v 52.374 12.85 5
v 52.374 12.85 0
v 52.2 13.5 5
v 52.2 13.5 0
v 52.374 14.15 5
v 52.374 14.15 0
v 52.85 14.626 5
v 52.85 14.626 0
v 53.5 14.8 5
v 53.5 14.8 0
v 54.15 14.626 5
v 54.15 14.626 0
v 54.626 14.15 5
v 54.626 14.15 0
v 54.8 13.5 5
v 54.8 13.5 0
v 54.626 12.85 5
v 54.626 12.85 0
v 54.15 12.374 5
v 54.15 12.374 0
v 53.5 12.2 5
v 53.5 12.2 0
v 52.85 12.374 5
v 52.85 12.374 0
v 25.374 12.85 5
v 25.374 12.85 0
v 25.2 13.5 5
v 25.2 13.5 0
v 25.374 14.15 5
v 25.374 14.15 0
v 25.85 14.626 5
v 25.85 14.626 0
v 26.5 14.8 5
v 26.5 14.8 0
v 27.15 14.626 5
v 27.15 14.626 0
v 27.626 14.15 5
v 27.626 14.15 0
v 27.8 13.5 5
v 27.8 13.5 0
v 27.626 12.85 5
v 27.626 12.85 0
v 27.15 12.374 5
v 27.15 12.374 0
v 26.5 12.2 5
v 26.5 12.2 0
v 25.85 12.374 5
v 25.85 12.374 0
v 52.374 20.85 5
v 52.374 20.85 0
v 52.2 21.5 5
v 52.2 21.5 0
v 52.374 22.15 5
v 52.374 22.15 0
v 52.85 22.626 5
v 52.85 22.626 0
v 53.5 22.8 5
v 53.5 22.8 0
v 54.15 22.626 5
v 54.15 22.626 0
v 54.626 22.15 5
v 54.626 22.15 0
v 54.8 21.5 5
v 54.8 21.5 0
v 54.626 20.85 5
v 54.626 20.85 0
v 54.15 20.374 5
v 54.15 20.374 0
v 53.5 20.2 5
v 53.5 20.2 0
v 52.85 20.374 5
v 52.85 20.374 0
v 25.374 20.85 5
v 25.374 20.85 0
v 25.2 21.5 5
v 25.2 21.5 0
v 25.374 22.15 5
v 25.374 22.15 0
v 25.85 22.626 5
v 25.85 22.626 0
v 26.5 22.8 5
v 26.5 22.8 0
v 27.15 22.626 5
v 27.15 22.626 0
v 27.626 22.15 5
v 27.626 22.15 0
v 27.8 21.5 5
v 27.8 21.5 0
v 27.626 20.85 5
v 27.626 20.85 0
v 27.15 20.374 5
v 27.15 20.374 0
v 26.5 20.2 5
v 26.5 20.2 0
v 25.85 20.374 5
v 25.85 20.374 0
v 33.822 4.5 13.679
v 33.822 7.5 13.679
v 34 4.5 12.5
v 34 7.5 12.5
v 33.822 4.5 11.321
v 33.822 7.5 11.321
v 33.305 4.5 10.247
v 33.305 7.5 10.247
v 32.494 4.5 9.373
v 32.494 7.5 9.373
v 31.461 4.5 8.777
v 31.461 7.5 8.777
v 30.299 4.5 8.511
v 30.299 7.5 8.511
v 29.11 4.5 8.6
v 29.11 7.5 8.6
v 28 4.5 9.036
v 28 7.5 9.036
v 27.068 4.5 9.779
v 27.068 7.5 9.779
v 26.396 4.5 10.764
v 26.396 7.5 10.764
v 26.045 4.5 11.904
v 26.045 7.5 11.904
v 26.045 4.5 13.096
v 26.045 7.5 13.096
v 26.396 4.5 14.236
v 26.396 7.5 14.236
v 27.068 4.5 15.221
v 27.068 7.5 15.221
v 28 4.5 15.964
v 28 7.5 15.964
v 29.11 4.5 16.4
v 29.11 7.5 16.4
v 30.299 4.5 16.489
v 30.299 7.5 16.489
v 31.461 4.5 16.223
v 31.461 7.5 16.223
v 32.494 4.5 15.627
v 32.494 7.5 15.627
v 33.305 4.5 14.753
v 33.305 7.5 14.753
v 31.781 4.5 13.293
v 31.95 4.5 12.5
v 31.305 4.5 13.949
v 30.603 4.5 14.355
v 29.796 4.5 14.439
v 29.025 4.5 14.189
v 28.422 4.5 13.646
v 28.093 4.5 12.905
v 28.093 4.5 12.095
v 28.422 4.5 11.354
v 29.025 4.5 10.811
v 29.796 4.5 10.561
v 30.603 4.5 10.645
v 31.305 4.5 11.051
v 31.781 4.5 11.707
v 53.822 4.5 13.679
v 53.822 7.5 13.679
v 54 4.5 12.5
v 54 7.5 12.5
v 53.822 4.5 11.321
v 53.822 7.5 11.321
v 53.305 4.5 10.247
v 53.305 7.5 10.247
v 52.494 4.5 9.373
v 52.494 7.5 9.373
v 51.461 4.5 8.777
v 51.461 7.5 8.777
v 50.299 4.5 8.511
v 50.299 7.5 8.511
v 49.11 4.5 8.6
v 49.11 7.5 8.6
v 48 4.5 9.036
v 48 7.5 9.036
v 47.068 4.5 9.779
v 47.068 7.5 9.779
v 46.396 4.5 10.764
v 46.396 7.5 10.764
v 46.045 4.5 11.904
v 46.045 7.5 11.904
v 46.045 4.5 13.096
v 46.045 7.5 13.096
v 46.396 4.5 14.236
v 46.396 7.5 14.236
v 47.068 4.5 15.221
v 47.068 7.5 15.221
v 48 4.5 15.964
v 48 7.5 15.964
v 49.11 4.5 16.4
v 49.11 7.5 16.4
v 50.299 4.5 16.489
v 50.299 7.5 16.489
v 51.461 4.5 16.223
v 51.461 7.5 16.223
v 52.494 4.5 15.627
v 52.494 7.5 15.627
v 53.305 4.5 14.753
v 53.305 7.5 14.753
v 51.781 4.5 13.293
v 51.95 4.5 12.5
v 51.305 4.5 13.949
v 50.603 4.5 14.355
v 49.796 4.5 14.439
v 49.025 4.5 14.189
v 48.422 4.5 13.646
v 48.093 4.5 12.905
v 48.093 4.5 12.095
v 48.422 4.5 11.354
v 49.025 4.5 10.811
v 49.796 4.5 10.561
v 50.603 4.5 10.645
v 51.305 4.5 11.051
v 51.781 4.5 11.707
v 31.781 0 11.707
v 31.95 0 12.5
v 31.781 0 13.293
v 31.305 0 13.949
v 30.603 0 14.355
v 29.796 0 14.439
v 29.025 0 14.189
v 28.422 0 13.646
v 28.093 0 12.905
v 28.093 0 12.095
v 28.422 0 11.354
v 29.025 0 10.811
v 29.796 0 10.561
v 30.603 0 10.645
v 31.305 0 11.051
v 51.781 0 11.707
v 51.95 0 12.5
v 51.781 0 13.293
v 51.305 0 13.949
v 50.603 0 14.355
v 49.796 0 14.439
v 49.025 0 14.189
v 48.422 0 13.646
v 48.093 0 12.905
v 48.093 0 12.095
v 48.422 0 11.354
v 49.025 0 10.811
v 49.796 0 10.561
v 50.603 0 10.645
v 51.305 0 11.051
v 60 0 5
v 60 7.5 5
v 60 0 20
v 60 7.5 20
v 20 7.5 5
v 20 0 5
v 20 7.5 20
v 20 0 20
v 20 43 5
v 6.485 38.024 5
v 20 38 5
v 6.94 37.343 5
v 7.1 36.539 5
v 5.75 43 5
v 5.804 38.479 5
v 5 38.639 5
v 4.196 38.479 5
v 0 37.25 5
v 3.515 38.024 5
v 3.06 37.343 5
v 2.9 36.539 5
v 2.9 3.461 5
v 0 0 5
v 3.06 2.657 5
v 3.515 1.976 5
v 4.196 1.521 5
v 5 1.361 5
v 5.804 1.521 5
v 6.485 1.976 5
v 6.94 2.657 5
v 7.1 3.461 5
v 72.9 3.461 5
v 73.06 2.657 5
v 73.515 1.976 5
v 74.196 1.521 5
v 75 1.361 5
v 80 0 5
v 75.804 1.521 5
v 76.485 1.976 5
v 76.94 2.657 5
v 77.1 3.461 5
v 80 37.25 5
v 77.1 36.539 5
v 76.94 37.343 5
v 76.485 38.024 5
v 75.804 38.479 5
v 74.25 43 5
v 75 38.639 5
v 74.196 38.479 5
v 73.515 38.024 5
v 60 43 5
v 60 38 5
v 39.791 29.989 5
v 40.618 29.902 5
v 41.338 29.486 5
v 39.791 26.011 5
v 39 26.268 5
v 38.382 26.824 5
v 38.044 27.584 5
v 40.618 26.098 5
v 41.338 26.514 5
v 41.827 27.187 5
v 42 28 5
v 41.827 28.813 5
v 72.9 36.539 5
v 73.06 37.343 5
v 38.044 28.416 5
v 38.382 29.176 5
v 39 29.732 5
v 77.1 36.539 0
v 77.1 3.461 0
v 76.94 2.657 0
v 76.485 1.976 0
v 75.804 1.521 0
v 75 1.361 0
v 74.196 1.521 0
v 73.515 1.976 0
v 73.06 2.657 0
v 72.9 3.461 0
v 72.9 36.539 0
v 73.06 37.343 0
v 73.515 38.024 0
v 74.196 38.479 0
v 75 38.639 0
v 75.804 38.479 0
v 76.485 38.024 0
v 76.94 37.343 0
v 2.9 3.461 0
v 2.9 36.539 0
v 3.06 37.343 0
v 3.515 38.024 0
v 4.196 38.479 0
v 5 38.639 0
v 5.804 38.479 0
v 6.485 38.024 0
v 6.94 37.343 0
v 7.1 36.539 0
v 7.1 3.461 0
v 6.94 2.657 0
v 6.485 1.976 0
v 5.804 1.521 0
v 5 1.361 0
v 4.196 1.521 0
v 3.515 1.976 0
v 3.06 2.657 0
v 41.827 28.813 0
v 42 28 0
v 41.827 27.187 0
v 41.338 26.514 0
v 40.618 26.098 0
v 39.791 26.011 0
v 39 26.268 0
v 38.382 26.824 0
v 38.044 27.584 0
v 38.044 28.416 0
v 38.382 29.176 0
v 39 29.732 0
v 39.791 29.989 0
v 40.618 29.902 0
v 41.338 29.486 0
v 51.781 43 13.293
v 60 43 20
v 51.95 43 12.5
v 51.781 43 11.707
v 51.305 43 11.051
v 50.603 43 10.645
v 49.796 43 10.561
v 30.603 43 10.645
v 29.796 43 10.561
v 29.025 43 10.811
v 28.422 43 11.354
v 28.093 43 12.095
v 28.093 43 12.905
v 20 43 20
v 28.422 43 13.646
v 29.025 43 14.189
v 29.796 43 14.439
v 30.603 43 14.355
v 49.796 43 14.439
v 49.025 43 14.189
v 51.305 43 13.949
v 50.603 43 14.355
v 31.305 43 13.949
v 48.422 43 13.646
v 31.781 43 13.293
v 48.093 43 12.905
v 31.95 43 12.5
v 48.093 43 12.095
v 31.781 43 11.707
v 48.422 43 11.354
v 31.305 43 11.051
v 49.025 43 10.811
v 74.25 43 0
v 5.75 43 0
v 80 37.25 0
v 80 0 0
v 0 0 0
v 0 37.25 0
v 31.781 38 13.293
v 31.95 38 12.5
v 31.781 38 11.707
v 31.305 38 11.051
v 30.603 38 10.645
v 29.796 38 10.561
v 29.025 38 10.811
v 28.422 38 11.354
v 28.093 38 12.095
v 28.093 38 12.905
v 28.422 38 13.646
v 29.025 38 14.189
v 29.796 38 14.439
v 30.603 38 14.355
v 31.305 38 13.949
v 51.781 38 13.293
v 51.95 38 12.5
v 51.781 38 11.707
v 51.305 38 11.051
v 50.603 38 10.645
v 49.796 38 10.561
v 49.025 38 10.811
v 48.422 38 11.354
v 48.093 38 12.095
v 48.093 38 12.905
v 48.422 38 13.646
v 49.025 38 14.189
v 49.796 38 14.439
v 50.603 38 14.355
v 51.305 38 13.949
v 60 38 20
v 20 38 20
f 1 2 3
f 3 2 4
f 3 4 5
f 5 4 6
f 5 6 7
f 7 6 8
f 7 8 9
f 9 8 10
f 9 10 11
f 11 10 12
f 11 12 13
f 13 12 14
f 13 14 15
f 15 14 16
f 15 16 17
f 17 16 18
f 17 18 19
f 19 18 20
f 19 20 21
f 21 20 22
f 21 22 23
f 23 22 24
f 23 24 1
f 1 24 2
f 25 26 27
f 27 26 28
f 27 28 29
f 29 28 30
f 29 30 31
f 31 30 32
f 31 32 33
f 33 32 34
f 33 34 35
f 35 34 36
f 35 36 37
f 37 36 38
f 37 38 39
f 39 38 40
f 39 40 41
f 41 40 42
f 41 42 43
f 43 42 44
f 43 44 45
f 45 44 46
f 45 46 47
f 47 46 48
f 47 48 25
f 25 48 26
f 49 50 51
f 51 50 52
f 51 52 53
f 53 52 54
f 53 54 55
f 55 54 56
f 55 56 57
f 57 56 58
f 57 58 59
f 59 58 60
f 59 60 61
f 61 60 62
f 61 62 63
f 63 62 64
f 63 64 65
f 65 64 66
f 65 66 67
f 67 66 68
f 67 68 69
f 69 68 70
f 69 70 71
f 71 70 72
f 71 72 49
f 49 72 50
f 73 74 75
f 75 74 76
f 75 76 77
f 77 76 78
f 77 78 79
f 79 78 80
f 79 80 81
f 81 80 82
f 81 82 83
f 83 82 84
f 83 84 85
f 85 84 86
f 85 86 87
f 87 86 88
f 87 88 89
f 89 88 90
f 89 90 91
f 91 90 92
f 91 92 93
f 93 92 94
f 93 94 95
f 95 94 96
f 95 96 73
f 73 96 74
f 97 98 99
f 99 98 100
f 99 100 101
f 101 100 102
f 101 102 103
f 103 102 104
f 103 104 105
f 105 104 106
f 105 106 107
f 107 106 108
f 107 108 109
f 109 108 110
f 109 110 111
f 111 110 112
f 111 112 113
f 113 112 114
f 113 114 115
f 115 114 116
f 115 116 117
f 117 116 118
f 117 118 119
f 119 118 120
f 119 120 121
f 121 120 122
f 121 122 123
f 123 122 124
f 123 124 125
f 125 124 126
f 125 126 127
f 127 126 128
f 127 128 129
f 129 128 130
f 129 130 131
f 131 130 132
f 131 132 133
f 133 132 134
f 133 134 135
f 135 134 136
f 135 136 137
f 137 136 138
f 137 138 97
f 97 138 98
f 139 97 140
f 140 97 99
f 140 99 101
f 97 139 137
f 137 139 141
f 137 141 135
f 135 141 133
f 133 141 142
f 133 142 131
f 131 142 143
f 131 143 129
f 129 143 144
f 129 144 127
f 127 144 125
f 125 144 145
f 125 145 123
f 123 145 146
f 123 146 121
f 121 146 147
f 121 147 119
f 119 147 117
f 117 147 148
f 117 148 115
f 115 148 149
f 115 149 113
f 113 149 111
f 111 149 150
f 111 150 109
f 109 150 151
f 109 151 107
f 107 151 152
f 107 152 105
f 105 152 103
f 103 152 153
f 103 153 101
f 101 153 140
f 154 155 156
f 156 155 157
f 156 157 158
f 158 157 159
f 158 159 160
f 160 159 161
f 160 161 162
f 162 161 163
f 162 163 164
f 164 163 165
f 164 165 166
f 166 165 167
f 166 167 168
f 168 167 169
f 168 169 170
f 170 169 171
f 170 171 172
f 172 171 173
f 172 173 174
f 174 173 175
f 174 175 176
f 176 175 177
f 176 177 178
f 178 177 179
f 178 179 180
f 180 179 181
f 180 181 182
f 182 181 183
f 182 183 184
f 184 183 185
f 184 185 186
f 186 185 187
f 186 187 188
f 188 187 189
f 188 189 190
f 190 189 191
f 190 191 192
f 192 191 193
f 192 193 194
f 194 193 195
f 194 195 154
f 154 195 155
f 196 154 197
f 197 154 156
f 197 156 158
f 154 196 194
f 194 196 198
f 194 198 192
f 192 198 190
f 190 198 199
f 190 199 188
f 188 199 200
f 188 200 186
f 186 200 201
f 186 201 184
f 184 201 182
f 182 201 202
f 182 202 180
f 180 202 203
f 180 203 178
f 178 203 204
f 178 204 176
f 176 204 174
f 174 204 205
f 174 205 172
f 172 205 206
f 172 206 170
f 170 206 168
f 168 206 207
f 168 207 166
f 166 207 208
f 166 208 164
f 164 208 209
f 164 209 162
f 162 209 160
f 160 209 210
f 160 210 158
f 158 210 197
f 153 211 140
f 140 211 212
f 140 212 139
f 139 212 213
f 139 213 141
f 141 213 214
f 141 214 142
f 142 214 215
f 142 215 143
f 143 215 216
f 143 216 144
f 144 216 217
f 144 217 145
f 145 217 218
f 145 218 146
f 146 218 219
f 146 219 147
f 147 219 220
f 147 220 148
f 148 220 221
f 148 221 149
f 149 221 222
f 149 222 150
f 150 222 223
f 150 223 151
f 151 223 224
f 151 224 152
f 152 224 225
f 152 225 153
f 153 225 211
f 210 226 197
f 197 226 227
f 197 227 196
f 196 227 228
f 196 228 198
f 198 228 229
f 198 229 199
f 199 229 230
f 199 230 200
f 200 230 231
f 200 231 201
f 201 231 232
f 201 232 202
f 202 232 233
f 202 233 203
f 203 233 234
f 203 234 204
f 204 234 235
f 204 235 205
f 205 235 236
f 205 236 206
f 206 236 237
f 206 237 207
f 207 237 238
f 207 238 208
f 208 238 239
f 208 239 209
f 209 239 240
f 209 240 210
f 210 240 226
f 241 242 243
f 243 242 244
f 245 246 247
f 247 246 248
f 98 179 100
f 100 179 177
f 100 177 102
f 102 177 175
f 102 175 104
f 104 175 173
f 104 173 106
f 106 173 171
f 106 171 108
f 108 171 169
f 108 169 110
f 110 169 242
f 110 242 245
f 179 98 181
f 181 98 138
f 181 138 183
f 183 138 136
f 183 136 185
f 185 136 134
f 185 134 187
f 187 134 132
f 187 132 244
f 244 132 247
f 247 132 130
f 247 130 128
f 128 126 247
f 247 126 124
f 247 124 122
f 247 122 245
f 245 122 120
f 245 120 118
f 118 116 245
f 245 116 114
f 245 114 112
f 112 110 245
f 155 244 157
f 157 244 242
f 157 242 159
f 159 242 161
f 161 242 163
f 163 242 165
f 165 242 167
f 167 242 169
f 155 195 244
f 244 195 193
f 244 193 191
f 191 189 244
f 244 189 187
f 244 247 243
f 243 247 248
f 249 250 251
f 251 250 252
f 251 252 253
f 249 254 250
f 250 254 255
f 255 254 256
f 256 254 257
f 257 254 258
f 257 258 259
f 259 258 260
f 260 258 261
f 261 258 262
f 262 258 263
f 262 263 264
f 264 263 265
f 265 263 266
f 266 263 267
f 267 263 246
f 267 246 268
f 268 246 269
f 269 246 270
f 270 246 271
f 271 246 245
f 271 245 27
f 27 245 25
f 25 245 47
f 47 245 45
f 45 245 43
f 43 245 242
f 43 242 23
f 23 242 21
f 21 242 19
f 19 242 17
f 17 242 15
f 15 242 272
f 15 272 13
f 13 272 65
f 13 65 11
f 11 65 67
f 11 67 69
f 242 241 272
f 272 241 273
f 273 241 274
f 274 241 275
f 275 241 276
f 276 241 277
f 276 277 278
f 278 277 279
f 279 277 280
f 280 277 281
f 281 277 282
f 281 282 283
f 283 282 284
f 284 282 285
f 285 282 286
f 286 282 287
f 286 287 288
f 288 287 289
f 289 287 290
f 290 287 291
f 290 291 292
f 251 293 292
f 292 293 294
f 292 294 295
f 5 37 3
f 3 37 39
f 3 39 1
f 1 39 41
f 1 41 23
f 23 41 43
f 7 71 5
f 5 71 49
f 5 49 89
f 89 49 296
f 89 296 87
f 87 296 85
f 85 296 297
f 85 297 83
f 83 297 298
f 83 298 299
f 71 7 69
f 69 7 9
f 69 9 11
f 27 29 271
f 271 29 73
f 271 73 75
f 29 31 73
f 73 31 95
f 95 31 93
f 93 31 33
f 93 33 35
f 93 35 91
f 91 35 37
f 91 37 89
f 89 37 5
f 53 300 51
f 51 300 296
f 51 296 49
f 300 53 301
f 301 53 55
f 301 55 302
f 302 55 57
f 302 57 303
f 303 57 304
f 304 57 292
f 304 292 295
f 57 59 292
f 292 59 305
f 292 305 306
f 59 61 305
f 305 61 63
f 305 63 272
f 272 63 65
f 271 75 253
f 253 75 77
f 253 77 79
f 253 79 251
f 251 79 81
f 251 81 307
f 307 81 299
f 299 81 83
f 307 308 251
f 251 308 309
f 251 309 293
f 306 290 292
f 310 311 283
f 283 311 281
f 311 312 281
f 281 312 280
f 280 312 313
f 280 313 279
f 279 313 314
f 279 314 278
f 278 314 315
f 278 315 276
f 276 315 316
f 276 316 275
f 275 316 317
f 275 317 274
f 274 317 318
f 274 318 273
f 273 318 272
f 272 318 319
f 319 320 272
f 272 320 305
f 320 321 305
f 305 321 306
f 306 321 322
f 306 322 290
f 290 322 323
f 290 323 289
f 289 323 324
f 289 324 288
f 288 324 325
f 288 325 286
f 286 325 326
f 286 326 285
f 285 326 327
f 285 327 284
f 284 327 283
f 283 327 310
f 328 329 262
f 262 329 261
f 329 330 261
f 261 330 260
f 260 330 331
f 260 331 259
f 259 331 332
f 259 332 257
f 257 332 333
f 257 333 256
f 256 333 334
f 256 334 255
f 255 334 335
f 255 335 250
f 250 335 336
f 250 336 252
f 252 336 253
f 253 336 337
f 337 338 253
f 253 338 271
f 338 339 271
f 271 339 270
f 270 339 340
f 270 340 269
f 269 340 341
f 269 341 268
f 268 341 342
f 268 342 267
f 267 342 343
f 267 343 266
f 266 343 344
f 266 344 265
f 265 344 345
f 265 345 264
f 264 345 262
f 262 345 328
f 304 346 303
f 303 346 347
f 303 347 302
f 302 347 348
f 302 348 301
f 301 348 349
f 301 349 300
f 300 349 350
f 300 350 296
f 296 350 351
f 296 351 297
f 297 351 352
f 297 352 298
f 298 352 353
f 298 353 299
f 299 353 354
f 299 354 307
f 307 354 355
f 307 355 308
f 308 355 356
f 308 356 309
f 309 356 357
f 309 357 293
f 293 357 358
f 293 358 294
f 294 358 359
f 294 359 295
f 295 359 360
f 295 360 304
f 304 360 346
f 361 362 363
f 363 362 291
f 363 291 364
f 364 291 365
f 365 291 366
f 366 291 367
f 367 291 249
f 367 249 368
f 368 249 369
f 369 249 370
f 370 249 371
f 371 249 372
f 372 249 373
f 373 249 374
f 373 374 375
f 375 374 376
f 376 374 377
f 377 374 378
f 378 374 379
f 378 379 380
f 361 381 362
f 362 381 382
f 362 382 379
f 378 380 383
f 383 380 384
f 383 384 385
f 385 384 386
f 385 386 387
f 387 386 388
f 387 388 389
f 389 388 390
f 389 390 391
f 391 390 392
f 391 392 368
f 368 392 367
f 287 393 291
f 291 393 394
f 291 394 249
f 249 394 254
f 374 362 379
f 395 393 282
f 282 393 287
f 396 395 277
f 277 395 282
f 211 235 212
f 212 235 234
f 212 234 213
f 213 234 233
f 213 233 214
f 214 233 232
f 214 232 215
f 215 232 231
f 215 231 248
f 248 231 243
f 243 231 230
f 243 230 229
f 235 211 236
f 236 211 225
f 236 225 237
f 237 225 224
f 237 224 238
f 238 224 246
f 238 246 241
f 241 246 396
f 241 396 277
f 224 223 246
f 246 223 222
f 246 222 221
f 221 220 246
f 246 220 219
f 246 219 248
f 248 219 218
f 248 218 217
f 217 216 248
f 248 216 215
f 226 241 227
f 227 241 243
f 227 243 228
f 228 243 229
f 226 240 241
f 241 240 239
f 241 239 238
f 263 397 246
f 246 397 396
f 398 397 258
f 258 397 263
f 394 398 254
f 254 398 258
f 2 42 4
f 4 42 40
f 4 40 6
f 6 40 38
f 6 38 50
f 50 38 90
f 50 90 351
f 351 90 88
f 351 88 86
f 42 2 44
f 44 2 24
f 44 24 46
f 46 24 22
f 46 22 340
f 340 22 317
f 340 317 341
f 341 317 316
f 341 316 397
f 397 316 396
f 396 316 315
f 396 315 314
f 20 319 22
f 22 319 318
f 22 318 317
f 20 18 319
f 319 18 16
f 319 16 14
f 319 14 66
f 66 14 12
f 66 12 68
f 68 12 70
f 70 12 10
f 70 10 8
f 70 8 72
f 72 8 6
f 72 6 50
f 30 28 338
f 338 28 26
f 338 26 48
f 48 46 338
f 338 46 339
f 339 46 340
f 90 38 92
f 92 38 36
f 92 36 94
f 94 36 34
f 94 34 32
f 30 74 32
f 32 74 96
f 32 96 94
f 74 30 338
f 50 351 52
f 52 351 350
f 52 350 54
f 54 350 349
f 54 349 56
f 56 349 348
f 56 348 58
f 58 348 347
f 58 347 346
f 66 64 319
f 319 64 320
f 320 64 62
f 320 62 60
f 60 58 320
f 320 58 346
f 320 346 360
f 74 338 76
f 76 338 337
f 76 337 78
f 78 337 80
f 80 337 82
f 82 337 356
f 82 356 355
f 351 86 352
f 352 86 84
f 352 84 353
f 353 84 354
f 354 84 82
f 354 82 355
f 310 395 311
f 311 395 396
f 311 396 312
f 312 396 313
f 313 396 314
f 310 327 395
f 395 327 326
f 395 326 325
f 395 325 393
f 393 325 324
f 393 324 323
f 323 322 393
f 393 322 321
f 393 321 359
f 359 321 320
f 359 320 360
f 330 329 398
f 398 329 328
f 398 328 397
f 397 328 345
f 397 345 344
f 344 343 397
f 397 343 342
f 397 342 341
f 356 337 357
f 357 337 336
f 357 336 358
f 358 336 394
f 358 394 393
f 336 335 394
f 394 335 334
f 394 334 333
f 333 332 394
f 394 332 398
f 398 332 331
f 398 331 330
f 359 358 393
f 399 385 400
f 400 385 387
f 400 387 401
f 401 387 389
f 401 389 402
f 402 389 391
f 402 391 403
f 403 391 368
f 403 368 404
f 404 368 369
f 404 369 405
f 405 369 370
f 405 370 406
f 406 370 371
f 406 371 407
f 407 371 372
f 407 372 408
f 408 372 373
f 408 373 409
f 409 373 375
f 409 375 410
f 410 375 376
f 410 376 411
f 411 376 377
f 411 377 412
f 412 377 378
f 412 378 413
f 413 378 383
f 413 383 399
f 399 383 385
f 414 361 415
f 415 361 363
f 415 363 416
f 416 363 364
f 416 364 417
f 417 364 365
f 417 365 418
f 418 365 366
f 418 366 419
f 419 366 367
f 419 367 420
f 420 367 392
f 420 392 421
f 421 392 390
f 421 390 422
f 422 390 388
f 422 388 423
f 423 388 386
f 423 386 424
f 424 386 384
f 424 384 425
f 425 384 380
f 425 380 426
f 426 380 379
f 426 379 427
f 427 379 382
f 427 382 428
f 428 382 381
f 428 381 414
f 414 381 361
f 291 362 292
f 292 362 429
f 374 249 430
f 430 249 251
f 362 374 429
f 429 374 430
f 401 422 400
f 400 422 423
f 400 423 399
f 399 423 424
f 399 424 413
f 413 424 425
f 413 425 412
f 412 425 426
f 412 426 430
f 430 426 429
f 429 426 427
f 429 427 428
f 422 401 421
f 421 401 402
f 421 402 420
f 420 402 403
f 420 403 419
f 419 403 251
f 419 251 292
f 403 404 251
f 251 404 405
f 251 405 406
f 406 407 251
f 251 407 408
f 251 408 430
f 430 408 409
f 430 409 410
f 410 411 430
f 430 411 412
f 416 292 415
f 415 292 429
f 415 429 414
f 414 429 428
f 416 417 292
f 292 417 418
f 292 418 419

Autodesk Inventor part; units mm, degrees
ref_plane "YZ Plane" through (0, 0, 0) normal (1, 0, 0) x (0, 1, 0)
ref_plane "XZ Plane" through (0, 0, 0) normal (0, 1, 0) x (-1, 0, 0)
ref_plane "XY Plane" through (0, 0, 0) normal (0, 0, 1) x (1, 0, 0)
sketch "Эскиз1" plane through (0, 0, 0) normal (0, 0, 1) x (1, 0, 0)
  arc A0 (50, 23.4174) -> (30, 23.4174) centre (40, 28) ccw
  line L0 (0, 37.25) -> (5.75, 43)
  line L1 (0, 0) -> (0, 37.25)
  line L2 (80, 0) -> (0, 0)
  line L3 (80, 0) -> (80, 37.25)
  line L4 (74.25, 43) -> (80, 37.25)
  line L5 (5.75, 43) -> (74.25, 43)
  circle A1 centre (40, 28) radius 2
  arc A2 (2.9, 3.4608) -> (7.1, 3.4608) centre (5, 3.4608) ccw
  line L6 (2.9, 3.4608) -> (2.9, 36.5392)
  arc A3 (7.1, 36.5392) -> (2.9, 36.5392) centre (5, 36.5392) ccw
  line L7 (7.1, 36.5392) -> (7.1, 3.4608)
  arc A4 (77.1, 36.5392) -> (72.9, 36.5392) centre (75, 36.5392) ccw
  line L8 (77.1, 36.5392) -> (77.1, 3.4608)
  arc A5 (72.9, 3.4608) -> (77.1, 3.4608) centre (75, 3.4608) ccw
  line L9 (72.9, 3.4608) -> (72.9, 36.5392)
  point P0 (40, -34)
extrude "Выдавливание1" add sketch "Эскиз1" along normal blind 5
sketch "Эскиз2" plane through (0, 0, 5) normal (0, 0, 1) x (1, 0, 0)
  line L0 (60, 0) -> (60, 7.5)
  line L1 (60, 7.5) -> (20, 7.5)
  line L2 (20, 7.5) -> (20, 0)
  line L3 (0, 0) -> (80, 0) projected
  line L4 (40, 0) -> (60, 7.5) construction
  line L5 (40, 0) -> (20, 7.5) construction
  line L6 (60, 0) -> (20, 0)
  dimension "d2" = 40
extrude "Выдавливание2" add sketch "Эскиз2" along normal blind 15
sketch "Эскиз3" plane through (20, 7.5, 5) normal (0, 1, 0) x (1, 0, 0)
  line L0 (0, 0) -> (0, -15) projected
  line L1 (0, -7.5) -> (40, -7.5)
  line L2 (40, 0) -> (40, -15) projected
  line L3 (20, -7.5) -> (20, -15)
  line L4 (20, -7.5) -> (20, 0)
  circle A0 centre (10, -7.5) radius 1.95
  circle A1 centre (30, -7.5) radius 1.95
  point P0 (-20, 5)
  dimension "d6" = 3.9
extrude "Выдавливание3" cut sketch "Эскиз3" against normal blind 15
sketch "Эскиз4" plane through (20, 7.5, 5) normal (0, 1, 0) x (1, 0, 0)
  circle A0 centre (10, -7.5) radius 1.95 projected
  circle A1 centre (10, -7.5) radius 4
  circle A2 centre (30, -7.5) radius 1.95 projected
  circle A3 centre (30, -7.5) radius 4
  point P0 (-20, 5)
  dimension "d9" = 8
  dimension "d10" = 8
extrude "Выдавливание4" cut sketch "Эскиз4" against normal blind 3
sketch "Эскиз5" plane through (0, 0, 0) normal (0, 0, -1) x (-1, 0, 0)
  arc A0 (-30, 23.4174) -> (-50, 23.4174) centre (-40, 28) ccw
  line L0 (-30, 23.4174) -> (-30, 0)
  line L1 (-11.1, 0) -> (-30, 0)
  line L2 (-11.1, 0) -> (-11.1, 37.25)
  line L3 (-13.85, 40) -> (-11.1, 37.25)
  line L4 (-66.15, 40) -> (-13.85, 40)
  line L5 (-68.9, 37.25) -> (-66.15, 40)
  line L6 (-68.9, 0) -> (-68.9, 37.25)
  line L7 (-50, 0) -> (-68.9, 0)
  line L8 (-50, 0) -> (-50, 23.4174)
  circle A1 centre (-26.5, 13.5) radius 1.3
  circle A2 centre (-53.5, 21.5) radius 1.3
  circle A3 centre (-53.5, 5.5) radius 1.3
  circle A4 centre (-53.5, 13.5) radius 1.3
  circle A5 centre (-26.5, 5.5) radius 1.3
  circle A6 centre (-26.5, 21.5) radius 1.3
  circle A7 centre (-40, 28) radius 2 projected
  circle A8 centre (-40, 28) radius 2
  point P0 (0, 0)
  point P1 (28.9, -34)
extrude "Выдавливание5" cut sketch "Эскиз5" against normal through all contours A1 | A2 | A4 | A6
sketch "Эскиз9" plane through (5.75, 43, 0) normal (0, 1, 0) x (1, 0, 0)
  line L0 (54.25, -20) -> (14.25, -20) projected
  line L1 (14.25, -5) -> (54.25, -5) projected
  line L2 (54.25, -20) -> (14.25, -20)
  line L3 (14.25, -20) -> (14.25, -5)
  line L4 (14.25, -5) -> (54.25, -5)
  line L5 (54.25, -5) -> (54.25, -20)
  circle A0 centre (44.25, -12.5) radius 1.95 projected
  circle A1 centre (44.25, -12.5) radius 1.95
  circle A2 centre (24.25, -12.5) radius 1.95 projected
  circle A3 centre (24.25, -12.5) radius 1.95
  point P0 (-5.75, 0)
extrude "Выдавливание8" add sketch "Эскиз9" against normal blind 5
properties part number "КВ33.044.702 - Стойка натягивающих роликов оси Y" material "Пластик АБС"
